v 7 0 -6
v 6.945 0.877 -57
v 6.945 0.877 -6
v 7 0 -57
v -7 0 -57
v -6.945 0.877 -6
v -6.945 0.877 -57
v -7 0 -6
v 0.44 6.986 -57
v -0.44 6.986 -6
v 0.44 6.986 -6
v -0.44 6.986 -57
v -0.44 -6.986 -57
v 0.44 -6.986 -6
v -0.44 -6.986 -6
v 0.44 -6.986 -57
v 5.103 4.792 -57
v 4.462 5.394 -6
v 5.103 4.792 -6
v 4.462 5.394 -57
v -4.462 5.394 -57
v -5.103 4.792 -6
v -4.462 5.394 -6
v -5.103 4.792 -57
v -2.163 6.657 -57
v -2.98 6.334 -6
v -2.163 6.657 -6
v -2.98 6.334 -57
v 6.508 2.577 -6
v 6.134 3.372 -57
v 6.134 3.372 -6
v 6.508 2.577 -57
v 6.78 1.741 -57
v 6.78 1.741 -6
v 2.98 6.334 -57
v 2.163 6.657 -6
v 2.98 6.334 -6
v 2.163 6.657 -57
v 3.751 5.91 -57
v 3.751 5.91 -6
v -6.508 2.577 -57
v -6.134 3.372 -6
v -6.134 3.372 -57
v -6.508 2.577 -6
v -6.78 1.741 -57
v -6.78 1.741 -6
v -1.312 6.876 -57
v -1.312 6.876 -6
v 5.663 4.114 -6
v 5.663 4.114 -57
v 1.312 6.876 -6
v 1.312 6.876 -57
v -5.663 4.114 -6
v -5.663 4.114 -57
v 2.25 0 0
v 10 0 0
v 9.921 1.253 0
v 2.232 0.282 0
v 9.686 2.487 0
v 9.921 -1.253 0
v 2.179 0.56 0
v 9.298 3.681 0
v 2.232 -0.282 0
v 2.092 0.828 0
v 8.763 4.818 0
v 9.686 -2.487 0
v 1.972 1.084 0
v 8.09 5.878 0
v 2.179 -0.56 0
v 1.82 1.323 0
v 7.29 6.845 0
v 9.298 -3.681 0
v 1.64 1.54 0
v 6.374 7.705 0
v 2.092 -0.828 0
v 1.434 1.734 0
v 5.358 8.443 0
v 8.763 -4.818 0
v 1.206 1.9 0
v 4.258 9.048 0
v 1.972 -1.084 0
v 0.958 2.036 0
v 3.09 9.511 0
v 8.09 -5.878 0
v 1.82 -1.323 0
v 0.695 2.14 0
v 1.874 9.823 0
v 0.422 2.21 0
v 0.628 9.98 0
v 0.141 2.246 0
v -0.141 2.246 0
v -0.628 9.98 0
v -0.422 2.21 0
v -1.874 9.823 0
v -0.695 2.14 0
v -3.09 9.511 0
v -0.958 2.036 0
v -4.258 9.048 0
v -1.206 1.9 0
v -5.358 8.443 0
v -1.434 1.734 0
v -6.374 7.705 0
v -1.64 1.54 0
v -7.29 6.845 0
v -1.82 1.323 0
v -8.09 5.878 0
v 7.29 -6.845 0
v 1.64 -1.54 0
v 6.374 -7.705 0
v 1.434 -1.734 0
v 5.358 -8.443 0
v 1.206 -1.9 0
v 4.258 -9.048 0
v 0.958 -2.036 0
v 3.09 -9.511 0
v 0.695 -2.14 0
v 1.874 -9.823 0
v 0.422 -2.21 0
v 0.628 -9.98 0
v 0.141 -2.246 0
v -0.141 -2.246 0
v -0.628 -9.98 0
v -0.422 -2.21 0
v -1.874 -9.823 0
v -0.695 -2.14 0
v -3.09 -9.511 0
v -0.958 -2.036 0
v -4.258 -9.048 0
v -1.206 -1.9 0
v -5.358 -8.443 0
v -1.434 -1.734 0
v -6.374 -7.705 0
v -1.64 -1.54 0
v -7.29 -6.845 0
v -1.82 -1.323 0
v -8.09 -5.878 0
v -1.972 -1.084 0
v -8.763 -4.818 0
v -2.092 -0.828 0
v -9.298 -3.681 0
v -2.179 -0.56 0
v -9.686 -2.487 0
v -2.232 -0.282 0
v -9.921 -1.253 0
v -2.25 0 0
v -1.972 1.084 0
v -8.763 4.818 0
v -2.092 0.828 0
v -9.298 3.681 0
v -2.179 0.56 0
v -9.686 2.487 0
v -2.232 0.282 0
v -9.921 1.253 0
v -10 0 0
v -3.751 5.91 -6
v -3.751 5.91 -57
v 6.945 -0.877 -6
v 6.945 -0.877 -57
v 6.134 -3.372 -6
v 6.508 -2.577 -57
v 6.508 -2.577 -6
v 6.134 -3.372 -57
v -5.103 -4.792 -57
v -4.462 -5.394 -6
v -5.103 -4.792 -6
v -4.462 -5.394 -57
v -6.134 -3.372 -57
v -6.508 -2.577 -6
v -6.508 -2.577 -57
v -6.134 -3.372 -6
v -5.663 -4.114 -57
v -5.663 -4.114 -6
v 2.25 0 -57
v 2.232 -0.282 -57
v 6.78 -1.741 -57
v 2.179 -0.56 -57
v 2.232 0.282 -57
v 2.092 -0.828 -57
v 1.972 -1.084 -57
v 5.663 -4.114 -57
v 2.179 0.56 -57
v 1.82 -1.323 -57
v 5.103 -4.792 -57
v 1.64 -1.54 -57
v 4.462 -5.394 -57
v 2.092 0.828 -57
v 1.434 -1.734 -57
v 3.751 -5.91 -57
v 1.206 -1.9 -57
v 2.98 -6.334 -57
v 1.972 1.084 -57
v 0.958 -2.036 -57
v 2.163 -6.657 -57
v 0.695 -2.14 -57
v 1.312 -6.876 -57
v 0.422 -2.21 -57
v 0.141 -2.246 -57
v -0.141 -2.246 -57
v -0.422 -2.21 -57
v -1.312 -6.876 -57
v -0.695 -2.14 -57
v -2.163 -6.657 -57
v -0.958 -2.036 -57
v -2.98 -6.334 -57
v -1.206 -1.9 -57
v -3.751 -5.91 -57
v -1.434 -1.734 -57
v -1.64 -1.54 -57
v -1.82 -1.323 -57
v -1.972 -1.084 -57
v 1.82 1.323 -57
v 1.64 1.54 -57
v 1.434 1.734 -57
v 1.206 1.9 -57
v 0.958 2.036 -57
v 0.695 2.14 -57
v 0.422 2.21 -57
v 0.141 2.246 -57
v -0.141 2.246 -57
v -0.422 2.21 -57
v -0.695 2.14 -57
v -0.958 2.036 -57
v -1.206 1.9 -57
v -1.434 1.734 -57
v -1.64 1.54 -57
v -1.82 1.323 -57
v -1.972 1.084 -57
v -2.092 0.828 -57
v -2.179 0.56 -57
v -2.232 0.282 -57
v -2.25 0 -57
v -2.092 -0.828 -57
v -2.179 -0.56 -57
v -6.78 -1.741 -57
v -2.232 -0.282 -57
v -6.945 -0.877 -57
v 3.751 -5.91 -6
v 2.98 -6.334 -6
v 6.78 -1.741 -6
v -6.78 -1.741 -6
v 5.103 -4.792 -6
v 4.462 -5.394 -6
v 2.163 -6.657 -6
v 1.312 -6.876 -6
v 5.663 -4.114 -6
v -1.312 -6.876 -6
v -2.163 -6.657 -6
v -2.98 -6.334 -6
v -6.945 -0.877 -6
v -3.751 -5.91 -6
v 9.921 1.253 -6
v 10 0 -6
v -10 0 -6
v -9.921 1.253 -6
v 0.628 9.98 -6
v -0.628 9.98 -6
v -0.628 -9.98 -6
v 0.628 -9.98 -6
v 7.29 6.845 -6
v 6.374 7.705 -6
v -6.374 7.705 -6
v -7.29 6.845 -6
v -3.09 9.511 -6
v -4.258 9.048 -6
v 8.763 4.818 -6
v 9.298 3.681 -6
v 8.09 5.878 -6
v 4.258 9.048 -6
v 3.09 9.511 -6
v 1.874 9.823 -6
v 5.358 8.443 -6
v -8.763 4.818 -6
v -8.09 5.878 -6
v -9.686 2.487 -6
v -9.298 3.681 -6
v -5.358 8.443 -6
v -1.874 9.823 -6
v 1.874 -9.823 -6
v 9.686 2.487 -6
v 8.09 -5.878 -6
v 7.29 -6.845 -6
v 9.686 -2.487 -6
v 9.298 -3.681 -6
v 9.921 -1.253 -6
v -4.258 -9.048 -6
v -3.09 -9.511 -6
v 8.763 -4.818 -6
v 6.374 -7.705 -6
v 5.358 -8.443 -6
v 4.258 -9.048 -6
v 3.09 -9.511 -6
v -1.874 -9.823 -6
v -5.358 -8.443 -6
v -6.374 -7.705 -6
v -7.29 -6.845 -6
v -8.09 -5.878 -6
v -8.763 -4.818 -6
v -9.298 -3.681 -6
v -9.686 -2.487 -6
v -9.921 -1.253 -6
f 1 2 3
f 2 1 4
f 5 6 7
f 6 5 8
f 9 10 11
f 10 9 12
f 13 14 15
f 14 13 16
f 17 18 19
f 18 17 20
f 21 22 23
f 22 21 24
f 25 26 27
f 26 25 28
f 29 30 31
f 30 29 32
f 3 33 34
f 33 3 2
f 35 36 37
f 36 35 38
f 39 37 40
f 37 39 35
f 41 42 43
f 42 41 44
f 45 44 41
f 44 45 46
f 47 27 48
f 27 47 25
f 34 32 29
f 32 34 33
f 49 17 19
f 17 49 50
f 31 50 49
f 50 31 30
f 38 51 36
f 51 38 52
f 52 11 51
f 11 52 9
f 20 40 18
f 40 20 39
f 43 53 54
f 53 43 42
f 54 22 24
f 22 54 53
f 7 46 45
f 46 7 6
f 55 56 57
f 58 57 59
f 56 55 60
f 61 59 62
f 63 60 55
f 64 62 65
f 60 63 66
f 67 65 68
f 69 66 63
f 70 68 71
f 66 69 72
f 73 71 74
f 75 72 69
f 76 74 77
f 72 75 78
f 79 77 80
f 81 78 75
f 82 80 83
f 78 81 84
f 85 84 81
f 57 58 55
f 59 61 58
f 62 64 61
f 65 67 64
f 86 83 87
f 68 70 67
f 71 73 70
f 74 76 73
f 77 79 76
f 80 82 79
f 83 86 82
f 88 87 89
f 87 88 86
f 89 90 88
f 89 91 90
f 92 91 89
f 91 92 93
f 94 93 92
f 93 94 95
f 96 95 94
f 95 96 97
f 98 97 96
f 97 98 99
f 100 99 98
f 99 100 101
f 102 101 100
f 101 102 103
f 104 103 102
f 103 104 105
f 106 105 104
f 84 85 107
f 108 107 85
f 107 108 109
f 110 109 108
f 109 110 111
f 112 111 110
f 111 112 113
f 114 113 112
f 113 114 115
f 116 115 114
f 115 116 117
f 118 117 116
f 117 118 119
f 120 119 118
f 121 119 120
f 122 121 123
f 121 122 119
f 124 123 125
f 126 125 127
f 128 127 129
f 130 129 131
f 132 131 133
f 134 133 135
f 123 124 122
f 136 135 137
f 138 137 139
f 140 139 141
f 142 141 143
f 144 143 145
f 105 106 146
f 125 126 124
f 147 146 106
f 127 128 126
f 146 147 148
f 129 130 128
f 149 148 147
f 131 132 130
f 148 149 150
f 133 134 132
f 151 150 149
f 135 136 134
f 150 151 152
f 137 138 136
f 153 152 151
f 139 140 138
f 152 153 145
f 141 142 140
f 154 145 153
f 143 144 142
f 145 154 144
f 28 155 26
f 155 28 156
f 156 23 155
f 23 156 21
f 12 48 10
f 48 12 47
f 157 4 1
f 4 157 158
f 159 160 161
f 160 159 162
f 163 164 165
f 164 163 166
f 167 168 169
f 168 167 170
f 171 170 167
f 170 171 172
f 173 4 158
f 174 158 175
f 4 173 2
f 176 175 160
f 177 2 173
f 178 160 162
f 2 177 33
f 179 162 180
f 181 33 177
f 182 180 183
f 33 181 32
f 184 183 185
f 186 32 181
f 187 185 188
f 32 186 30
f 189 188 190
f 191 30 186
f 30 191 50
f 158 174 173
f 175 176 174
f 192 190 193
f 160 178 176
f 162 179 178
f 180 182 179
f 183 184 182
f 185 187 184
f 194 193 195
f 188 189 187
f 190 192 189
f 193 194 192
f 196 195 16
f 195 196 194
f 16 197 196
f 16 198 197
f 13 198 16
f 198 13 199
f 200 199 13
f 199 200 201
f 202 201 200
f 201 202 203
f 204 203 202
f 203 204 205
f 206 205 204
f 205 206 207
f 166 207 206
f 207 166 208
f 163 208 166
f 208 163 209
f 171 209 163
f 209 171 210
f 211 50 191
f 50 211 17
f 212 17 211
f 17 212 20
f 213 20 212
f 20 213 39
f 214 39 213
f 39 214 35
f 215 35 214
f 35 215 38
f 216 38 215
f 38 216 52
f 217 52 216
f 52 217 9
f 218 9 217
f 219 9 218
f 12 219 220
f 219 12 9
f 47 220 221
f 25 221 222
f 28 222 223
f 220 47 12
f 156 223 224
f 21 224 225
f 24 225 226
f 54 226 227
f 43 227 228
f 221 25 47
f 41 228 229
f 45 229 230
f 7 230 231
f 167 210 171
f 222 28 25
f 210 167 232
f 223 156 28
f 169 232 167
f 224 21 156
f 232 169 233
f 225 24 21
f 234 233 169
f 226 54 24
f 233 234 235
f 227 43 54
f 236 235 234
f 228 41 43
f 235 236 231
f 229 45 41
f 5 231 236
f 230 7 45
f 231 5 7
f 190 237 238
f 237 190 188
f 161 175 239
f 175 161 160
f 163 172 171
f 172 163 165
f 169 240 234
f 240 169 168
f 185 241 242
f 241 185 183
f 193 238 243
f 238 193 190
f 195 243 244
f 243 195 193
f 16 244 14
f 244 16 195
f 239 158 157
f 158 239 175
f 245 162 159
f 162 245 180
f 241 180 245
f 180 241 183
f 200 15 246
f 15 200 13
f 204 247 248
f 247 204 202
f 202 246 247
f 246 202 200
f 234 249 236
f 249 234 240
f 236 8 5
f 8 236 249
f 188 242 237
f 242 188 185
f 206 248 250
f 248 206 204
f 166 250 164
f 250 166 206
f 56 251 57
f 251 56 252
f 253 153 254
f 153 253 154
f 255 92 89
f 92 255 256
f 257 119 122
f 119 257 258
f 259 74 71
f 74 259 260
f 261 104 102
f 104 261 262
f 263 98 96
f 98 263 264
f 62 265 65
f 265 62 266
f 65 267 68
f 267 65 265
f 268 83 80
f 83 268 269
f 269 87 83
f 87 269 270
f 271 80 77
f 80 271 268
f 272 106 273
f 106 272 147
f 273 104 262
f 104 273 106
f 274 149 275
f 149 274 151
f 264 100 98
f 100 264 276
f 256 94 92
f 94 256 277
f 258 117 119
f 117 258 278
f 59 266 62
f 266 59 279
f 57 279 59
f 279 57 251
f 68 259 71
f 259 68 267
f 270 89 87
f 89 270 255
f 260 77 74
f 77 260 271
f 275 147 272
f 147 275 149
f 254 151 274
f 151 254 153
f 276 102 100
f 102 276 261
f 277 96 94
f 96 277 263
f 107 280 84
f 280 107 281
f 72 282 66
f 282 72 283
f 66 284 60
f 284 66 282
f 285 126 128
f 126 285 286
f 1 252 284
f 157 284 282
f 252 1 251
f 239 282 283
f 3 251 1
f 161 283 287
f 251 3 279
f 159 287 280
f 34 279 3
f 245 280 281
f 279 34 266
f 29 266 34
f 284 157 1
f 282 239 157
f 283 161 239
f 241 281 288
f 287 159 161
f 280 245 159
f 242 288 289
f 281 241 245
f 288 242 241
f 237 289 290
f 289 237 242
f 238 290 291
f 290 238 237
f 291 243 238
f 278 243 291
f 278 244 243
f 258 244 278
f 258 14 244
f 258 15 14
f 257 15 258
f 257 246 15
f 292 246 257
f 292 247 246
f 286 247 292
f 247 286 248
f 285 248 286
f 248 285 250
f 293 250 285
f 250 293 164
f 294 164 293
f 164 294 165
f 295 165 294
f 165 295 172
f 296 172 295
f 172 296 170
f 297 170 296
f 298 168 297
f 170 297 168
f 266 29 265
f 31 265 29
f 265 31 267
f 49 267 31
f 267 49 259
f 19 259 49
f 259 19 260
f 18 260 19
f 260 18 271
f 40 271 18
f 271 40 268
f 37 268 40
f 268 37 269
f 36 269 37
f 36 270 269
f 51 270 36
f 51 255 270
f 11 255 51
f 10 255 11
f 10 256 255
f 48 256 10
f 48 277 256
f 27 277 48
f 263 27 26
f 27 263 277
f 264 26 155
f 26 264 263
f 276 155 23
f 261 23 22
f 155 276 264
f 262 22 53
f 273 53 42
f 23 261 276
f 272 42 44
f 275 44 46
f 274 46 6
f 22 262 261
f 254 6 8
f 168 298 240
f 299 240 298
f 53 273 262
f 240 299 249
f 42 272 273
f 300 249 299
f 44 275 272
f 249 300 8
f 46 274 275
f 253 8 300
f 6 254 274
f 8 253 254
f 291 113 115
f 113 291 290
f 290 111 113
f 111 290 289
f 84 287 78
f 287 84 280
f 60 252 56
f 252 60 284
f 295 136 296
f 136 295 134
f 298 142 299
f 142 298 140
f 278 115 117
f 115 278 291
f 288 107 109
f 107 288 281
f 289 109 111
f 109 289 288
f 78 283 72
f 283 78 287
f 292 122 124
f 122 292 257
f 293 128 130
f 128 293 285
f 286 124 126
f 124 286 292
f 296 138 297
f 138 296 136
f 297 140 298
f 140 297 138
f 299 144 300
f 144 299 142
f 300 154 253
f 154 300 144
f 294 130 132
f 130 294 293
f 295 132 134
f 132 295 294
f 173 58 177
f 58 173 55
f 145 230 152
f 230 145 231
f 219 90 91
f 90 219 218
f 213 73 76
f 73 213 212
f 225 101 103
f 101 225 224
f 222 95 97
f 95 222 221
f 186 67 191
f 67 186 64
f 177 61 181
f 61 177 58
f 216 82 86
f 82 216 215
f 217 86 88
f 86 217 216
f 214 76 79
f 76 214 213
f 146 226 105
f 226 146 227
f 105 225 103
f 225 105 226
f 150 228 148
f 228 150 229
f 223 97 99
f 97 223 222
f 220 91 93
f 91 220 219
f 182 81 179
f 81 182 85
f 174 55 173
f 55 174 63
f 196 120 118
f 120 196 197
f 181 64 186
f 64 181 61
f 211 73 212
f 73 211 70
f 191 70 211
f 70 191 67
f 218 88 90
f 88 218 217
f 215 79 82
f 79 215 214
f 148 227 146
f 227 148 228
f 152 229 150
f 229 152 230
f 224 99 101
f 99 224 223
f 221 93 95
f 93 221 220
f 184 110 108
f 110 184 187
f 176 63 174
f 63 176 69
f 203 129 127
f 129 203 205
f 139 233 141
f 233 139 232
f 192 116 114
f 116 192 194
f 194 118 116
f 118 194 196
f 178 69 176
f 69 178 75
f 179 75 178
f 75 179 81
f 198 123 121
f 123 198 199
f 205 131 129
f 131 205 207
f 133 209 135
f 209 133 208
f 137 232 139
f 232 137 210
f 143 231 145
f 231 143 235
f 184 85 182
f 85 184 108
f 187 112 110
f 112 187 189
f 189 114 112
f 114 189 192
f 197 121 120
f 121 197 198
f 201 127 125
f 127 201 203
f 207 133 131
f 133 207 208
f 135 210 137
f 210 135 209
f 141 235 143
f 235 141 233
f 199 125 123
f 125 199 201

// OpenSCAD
$fn = 50;


difference() {
	union() {
		translate(v = [0, 0, -57.0000000000]) {
			cylinder(h = 57, r = 7.0000000000);
		}
		translate(v = [0, 0, -6.0000000000]) {
			cylinder(h = 6, r = 10.0000000000);
		}
	}
	union() {
		#translate(v = [0, 0, -57]) {
			cylinder(h = 57, r = 2.2500000000);
		}
	}
}
